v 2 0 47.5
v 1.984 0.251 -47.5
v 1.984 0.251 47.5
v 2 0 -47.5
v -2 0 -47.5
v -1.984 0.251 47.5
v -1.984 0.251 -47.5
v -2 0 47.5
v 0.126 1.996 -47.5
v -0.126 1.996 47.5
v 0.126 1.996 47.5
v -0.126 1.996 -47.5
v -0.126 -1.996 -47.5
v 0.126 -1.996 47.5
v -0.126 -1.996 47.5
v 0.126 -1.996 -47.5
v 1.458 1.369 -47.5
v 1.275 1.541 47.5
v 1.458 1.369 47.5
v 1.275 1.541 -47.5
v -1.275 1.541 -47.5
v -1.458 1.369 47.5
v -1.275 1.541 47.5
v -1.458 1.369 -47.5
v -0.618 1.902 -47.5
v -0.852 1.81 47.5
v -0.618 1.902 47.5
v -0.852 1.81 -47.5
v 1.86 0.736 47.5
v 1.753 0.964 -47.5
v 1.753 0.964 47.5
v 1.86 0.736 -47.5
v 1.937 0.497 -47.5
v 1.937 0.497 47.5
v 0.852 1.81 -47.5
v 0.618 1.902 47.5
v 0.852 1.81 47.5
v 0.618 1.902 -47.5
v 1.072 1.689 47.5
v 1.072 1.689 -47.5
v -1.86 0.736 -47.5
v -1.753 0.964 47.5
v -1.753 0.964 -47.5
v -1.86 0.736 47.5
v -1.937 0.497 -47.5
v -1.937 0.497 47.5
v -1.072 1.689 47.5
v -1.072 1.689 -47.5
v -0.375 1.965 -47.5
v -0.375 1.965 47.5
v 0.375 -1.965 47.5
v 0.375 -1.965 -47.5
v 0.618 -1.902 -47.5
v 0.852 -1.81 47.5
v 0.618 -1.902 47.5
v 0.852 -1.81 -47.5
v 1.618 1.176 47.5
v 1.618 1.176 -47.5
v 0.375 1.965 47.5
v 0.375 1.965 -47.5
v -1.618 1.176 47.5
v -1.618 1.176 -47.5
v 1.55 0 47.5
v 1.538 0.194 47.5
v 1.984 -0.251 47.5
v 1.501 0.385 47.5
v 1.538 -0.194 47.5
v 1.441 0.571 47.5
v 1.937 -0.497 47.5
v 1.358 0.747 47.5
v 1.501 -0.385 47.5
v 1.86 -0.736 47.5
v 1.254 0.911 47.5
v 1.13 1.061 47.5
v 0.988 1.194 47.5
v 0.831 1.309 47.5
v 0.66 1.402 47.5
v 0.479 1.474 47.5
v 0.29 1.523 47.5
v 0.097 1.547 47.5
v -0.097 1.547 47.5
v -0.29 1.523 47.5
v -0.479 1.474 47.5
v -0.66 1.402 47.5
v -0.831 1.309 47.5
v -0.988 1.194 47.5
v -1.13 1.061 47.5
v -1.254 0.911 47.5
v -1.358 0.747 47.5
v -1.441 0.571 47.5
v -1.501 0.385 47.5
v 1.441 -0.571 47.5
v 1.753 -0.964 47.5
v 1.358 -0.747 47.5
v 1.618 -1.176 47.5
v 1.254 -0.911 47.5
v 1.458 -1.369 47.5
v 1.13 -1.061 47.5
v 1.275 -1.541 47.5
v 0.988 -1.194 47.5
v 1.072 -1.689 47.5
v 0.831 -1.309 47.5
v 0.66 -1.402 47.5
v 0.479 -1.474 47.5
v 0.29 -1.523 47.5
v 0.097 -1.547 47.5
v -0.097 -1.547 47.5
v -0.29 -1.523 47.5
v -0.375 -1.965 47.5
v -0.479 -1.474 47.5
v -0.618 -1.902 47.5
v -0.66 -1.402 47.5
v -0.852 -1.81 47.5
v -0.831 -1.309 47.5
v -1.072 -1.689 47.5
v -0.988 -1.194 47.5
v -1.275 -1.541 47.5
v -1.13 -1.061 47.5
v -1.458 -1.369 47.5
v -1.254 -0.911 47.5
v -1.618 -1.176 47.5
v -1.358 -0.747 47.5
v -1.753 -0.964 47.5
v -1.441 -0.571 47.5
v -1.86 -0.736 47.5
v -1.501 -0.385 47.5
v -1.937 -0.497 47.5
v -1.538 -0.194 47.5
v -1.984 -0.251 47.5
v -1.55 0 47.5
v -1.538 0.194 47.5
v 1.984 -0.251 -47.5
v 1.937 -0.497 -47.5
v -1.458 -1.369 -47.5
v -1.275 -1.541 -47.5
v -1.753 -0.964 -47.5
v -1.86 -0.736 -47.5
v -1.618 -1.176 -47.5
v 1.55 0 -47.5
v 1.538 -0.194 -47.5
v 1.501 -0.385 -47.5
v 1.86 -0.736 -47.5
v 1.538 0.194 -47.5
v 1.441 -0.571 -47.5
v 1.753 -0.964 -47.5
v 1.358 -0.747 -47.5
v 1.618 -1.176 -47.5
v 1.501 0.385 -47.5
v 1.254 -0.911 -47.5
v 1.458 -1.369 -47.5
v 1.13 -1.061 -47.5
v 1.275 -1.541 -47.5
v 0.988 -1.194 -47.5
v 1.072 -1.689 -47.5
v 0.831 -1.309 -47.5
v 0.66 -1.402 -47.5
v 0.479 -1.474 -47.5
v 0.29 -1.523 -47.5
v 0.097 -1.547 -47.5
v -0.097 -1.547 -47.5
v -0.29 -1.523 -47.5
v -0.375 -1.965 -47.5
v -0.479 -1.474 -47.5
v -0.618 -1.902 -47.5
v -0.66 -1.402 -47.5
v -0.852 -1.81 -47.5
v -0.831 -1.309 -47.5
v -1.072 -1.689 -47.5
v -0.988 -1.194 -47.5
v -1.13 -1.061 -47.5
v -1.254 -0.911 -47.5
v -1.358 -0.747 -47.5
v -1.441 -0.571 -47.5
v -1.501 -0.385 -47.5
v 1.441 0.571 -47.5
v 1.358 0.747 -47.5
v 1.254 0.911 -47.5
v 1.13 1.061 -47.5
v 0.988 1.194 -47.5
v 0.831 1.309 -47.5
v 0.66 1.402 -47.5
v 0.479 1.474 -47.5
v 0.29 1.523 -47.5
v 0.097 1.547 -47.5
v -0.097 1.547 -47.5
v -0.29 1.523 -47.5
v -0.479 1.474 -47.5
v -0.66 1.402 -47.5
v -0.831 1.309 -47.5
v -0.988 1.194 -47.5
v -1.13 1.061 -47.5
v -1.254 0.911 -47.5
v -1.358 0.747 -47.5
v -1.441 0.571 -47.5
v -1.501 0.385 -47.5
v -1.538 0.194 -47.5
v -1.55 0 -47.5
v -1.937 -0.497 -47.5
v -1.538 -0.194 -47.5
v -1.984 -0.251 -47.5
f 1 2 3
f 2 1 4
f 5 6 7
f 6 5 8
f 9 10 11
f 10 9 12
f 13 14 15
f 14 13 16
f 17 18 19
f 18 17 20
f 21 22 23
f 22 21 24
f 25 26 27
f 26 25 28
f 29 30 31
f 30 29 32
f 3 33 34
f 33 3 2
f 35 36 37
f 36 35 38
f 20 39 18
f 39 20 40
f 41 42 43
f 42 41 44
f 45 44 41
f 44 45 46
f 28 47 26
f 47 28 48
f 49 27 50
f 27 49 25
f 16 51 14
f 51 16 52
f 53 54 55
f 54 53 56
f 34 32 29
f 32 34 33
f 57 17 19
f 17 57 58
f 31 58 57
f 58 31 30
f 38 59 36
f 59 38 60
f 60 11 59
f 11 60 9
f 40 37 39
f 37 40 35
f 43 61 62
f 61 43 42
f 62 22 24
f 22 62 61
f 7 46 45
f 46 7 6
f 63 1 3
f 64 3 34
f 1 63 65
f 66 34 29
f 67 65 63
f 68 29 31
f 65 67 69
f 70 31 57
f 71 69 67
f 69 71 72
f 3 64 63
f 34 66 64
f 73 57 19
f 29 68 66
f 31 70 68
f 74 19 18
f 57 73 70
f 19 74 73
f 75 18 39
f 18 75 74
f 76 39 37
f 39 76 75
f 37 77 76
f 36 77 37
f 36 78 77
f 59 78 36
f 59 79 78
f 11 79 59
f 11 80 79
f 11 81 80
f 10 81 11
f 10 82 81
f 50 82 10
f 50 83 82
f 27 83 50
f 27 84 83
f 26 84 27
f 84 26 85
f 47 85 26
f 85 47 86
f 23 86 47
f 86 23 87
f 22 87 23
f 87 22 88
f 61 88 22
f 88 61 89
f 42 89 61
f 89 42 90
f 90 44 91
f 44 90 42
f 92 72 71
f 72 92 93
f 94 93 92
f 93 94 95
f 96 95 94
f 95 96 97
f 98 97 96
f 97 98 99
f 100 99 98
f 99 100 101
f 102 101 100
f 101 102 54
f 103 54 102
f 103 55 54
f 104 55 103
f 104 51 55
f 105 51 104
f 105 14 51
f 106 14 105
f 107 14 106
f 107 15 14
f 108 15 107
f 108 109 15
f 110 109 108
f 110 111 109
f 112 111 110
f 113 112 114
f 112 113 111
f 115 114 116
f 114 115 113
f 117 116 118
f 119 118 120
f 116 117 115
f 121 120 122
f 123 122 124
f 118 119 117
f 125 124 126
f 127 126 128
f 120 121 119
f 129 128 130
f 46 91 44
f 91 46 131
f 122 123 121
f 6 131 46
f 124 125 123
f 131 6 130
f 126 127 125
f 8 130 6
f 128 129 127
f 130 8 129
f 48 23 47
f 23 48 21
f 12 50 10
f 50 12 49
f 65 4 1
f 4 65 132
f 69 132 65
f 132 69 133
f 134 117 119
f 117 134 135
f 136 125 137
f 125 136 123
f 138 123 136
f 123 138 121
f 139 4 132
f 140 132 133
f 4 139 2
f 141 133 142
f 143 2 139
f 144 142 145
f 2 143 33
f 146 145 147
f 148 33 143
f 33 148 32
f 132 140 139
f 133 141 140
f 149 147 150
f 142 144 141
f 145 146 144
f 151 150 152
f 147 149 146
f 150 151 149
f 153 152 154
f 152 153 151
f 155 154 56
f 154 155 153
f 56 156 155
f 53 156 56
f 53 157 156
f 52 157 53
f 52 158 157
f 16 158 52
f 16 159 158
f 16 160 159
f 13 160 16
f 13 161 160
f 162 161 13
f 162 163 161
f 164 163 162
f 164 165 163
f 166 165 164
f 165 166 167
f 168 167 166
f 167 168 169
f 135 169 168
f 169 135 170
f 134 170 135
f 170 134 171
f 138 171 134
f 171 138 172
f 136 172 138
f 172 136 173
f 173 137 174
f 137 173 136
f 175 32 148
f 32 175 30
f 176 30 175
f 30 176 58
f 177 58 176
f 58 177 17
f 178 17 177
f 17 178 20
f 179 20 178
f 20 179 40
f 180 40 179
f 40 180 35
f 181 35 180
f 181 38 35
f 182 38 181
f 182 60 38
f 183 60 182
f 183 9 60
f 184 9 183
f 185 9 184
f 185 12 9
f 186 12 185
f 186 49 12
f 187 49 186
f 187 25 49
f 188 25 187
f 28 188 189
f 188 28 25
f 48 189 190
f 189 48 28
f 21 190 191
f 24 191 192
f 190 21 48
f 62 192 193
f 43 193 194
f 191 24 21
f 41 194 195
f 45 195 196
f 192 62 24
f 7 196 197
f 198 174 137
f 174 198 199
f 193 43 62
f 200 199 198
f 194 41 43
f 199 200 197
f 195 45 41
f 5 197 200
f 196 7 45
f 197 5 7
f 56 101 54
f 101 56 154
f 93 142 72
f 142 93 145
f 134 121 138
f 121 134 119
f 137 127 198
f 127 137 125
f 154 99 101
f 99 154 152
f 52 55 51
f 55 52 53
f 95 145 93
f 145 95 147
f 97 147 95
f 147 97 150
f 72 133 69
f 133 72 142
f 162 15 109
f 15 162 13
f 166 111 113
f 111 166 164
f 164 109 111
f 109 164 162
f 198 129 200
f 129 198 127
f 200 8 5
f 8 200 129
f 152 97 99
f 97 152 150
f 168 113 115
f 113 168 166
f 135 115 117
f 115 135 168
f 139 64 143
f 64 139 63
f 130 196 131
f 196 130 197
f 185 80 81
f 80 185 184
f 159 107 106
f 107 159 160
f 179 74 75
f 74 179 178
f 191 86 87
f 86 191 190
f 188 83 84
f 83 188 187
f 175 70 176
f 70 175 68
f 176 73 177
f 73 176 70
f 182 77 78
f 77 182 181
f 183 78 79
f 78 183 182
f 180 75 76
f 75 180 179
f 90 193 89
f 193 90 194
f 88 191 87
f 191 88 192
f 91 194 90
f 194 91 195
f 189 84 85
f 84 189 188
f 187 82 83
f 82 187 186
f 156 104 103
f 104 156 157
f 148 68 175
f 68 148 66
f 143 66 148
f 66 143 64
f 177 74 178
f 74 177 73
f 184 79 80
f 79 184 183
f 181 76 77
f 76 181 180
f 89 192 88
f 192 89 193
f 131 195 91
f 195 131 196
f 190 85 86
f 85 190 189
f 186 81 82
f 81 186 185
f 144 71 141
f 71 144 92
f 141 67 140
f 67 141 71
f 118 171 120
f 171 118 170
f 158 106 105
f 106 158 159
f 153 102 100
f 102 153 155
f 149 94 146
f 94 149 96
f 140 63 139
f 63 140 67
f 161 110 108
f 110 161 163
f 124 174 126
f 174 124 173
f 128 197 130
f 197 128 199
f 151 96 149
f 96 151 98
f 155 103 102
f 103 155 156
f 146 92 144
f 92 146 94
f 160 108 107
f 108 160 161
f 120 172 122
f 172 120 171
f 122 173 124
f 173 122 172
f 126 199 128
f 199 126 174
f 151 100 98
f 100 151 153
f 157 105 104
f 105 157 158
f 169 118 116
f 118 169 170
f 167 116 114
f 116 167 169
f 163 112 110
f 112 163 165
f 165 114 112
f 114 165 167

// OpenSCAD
$fn = 50;


difference() {
	union() {
		translate(v = [0, 0, -47.5000000000]) {
			cylinder(h = 95, r = 2.0000000000);
		}
	}
	union() {
		translate(v = [0, 0, -100.0000000000]) {
			cylinder(h = 200, r = 1.5500000000);
		}
	}
}
